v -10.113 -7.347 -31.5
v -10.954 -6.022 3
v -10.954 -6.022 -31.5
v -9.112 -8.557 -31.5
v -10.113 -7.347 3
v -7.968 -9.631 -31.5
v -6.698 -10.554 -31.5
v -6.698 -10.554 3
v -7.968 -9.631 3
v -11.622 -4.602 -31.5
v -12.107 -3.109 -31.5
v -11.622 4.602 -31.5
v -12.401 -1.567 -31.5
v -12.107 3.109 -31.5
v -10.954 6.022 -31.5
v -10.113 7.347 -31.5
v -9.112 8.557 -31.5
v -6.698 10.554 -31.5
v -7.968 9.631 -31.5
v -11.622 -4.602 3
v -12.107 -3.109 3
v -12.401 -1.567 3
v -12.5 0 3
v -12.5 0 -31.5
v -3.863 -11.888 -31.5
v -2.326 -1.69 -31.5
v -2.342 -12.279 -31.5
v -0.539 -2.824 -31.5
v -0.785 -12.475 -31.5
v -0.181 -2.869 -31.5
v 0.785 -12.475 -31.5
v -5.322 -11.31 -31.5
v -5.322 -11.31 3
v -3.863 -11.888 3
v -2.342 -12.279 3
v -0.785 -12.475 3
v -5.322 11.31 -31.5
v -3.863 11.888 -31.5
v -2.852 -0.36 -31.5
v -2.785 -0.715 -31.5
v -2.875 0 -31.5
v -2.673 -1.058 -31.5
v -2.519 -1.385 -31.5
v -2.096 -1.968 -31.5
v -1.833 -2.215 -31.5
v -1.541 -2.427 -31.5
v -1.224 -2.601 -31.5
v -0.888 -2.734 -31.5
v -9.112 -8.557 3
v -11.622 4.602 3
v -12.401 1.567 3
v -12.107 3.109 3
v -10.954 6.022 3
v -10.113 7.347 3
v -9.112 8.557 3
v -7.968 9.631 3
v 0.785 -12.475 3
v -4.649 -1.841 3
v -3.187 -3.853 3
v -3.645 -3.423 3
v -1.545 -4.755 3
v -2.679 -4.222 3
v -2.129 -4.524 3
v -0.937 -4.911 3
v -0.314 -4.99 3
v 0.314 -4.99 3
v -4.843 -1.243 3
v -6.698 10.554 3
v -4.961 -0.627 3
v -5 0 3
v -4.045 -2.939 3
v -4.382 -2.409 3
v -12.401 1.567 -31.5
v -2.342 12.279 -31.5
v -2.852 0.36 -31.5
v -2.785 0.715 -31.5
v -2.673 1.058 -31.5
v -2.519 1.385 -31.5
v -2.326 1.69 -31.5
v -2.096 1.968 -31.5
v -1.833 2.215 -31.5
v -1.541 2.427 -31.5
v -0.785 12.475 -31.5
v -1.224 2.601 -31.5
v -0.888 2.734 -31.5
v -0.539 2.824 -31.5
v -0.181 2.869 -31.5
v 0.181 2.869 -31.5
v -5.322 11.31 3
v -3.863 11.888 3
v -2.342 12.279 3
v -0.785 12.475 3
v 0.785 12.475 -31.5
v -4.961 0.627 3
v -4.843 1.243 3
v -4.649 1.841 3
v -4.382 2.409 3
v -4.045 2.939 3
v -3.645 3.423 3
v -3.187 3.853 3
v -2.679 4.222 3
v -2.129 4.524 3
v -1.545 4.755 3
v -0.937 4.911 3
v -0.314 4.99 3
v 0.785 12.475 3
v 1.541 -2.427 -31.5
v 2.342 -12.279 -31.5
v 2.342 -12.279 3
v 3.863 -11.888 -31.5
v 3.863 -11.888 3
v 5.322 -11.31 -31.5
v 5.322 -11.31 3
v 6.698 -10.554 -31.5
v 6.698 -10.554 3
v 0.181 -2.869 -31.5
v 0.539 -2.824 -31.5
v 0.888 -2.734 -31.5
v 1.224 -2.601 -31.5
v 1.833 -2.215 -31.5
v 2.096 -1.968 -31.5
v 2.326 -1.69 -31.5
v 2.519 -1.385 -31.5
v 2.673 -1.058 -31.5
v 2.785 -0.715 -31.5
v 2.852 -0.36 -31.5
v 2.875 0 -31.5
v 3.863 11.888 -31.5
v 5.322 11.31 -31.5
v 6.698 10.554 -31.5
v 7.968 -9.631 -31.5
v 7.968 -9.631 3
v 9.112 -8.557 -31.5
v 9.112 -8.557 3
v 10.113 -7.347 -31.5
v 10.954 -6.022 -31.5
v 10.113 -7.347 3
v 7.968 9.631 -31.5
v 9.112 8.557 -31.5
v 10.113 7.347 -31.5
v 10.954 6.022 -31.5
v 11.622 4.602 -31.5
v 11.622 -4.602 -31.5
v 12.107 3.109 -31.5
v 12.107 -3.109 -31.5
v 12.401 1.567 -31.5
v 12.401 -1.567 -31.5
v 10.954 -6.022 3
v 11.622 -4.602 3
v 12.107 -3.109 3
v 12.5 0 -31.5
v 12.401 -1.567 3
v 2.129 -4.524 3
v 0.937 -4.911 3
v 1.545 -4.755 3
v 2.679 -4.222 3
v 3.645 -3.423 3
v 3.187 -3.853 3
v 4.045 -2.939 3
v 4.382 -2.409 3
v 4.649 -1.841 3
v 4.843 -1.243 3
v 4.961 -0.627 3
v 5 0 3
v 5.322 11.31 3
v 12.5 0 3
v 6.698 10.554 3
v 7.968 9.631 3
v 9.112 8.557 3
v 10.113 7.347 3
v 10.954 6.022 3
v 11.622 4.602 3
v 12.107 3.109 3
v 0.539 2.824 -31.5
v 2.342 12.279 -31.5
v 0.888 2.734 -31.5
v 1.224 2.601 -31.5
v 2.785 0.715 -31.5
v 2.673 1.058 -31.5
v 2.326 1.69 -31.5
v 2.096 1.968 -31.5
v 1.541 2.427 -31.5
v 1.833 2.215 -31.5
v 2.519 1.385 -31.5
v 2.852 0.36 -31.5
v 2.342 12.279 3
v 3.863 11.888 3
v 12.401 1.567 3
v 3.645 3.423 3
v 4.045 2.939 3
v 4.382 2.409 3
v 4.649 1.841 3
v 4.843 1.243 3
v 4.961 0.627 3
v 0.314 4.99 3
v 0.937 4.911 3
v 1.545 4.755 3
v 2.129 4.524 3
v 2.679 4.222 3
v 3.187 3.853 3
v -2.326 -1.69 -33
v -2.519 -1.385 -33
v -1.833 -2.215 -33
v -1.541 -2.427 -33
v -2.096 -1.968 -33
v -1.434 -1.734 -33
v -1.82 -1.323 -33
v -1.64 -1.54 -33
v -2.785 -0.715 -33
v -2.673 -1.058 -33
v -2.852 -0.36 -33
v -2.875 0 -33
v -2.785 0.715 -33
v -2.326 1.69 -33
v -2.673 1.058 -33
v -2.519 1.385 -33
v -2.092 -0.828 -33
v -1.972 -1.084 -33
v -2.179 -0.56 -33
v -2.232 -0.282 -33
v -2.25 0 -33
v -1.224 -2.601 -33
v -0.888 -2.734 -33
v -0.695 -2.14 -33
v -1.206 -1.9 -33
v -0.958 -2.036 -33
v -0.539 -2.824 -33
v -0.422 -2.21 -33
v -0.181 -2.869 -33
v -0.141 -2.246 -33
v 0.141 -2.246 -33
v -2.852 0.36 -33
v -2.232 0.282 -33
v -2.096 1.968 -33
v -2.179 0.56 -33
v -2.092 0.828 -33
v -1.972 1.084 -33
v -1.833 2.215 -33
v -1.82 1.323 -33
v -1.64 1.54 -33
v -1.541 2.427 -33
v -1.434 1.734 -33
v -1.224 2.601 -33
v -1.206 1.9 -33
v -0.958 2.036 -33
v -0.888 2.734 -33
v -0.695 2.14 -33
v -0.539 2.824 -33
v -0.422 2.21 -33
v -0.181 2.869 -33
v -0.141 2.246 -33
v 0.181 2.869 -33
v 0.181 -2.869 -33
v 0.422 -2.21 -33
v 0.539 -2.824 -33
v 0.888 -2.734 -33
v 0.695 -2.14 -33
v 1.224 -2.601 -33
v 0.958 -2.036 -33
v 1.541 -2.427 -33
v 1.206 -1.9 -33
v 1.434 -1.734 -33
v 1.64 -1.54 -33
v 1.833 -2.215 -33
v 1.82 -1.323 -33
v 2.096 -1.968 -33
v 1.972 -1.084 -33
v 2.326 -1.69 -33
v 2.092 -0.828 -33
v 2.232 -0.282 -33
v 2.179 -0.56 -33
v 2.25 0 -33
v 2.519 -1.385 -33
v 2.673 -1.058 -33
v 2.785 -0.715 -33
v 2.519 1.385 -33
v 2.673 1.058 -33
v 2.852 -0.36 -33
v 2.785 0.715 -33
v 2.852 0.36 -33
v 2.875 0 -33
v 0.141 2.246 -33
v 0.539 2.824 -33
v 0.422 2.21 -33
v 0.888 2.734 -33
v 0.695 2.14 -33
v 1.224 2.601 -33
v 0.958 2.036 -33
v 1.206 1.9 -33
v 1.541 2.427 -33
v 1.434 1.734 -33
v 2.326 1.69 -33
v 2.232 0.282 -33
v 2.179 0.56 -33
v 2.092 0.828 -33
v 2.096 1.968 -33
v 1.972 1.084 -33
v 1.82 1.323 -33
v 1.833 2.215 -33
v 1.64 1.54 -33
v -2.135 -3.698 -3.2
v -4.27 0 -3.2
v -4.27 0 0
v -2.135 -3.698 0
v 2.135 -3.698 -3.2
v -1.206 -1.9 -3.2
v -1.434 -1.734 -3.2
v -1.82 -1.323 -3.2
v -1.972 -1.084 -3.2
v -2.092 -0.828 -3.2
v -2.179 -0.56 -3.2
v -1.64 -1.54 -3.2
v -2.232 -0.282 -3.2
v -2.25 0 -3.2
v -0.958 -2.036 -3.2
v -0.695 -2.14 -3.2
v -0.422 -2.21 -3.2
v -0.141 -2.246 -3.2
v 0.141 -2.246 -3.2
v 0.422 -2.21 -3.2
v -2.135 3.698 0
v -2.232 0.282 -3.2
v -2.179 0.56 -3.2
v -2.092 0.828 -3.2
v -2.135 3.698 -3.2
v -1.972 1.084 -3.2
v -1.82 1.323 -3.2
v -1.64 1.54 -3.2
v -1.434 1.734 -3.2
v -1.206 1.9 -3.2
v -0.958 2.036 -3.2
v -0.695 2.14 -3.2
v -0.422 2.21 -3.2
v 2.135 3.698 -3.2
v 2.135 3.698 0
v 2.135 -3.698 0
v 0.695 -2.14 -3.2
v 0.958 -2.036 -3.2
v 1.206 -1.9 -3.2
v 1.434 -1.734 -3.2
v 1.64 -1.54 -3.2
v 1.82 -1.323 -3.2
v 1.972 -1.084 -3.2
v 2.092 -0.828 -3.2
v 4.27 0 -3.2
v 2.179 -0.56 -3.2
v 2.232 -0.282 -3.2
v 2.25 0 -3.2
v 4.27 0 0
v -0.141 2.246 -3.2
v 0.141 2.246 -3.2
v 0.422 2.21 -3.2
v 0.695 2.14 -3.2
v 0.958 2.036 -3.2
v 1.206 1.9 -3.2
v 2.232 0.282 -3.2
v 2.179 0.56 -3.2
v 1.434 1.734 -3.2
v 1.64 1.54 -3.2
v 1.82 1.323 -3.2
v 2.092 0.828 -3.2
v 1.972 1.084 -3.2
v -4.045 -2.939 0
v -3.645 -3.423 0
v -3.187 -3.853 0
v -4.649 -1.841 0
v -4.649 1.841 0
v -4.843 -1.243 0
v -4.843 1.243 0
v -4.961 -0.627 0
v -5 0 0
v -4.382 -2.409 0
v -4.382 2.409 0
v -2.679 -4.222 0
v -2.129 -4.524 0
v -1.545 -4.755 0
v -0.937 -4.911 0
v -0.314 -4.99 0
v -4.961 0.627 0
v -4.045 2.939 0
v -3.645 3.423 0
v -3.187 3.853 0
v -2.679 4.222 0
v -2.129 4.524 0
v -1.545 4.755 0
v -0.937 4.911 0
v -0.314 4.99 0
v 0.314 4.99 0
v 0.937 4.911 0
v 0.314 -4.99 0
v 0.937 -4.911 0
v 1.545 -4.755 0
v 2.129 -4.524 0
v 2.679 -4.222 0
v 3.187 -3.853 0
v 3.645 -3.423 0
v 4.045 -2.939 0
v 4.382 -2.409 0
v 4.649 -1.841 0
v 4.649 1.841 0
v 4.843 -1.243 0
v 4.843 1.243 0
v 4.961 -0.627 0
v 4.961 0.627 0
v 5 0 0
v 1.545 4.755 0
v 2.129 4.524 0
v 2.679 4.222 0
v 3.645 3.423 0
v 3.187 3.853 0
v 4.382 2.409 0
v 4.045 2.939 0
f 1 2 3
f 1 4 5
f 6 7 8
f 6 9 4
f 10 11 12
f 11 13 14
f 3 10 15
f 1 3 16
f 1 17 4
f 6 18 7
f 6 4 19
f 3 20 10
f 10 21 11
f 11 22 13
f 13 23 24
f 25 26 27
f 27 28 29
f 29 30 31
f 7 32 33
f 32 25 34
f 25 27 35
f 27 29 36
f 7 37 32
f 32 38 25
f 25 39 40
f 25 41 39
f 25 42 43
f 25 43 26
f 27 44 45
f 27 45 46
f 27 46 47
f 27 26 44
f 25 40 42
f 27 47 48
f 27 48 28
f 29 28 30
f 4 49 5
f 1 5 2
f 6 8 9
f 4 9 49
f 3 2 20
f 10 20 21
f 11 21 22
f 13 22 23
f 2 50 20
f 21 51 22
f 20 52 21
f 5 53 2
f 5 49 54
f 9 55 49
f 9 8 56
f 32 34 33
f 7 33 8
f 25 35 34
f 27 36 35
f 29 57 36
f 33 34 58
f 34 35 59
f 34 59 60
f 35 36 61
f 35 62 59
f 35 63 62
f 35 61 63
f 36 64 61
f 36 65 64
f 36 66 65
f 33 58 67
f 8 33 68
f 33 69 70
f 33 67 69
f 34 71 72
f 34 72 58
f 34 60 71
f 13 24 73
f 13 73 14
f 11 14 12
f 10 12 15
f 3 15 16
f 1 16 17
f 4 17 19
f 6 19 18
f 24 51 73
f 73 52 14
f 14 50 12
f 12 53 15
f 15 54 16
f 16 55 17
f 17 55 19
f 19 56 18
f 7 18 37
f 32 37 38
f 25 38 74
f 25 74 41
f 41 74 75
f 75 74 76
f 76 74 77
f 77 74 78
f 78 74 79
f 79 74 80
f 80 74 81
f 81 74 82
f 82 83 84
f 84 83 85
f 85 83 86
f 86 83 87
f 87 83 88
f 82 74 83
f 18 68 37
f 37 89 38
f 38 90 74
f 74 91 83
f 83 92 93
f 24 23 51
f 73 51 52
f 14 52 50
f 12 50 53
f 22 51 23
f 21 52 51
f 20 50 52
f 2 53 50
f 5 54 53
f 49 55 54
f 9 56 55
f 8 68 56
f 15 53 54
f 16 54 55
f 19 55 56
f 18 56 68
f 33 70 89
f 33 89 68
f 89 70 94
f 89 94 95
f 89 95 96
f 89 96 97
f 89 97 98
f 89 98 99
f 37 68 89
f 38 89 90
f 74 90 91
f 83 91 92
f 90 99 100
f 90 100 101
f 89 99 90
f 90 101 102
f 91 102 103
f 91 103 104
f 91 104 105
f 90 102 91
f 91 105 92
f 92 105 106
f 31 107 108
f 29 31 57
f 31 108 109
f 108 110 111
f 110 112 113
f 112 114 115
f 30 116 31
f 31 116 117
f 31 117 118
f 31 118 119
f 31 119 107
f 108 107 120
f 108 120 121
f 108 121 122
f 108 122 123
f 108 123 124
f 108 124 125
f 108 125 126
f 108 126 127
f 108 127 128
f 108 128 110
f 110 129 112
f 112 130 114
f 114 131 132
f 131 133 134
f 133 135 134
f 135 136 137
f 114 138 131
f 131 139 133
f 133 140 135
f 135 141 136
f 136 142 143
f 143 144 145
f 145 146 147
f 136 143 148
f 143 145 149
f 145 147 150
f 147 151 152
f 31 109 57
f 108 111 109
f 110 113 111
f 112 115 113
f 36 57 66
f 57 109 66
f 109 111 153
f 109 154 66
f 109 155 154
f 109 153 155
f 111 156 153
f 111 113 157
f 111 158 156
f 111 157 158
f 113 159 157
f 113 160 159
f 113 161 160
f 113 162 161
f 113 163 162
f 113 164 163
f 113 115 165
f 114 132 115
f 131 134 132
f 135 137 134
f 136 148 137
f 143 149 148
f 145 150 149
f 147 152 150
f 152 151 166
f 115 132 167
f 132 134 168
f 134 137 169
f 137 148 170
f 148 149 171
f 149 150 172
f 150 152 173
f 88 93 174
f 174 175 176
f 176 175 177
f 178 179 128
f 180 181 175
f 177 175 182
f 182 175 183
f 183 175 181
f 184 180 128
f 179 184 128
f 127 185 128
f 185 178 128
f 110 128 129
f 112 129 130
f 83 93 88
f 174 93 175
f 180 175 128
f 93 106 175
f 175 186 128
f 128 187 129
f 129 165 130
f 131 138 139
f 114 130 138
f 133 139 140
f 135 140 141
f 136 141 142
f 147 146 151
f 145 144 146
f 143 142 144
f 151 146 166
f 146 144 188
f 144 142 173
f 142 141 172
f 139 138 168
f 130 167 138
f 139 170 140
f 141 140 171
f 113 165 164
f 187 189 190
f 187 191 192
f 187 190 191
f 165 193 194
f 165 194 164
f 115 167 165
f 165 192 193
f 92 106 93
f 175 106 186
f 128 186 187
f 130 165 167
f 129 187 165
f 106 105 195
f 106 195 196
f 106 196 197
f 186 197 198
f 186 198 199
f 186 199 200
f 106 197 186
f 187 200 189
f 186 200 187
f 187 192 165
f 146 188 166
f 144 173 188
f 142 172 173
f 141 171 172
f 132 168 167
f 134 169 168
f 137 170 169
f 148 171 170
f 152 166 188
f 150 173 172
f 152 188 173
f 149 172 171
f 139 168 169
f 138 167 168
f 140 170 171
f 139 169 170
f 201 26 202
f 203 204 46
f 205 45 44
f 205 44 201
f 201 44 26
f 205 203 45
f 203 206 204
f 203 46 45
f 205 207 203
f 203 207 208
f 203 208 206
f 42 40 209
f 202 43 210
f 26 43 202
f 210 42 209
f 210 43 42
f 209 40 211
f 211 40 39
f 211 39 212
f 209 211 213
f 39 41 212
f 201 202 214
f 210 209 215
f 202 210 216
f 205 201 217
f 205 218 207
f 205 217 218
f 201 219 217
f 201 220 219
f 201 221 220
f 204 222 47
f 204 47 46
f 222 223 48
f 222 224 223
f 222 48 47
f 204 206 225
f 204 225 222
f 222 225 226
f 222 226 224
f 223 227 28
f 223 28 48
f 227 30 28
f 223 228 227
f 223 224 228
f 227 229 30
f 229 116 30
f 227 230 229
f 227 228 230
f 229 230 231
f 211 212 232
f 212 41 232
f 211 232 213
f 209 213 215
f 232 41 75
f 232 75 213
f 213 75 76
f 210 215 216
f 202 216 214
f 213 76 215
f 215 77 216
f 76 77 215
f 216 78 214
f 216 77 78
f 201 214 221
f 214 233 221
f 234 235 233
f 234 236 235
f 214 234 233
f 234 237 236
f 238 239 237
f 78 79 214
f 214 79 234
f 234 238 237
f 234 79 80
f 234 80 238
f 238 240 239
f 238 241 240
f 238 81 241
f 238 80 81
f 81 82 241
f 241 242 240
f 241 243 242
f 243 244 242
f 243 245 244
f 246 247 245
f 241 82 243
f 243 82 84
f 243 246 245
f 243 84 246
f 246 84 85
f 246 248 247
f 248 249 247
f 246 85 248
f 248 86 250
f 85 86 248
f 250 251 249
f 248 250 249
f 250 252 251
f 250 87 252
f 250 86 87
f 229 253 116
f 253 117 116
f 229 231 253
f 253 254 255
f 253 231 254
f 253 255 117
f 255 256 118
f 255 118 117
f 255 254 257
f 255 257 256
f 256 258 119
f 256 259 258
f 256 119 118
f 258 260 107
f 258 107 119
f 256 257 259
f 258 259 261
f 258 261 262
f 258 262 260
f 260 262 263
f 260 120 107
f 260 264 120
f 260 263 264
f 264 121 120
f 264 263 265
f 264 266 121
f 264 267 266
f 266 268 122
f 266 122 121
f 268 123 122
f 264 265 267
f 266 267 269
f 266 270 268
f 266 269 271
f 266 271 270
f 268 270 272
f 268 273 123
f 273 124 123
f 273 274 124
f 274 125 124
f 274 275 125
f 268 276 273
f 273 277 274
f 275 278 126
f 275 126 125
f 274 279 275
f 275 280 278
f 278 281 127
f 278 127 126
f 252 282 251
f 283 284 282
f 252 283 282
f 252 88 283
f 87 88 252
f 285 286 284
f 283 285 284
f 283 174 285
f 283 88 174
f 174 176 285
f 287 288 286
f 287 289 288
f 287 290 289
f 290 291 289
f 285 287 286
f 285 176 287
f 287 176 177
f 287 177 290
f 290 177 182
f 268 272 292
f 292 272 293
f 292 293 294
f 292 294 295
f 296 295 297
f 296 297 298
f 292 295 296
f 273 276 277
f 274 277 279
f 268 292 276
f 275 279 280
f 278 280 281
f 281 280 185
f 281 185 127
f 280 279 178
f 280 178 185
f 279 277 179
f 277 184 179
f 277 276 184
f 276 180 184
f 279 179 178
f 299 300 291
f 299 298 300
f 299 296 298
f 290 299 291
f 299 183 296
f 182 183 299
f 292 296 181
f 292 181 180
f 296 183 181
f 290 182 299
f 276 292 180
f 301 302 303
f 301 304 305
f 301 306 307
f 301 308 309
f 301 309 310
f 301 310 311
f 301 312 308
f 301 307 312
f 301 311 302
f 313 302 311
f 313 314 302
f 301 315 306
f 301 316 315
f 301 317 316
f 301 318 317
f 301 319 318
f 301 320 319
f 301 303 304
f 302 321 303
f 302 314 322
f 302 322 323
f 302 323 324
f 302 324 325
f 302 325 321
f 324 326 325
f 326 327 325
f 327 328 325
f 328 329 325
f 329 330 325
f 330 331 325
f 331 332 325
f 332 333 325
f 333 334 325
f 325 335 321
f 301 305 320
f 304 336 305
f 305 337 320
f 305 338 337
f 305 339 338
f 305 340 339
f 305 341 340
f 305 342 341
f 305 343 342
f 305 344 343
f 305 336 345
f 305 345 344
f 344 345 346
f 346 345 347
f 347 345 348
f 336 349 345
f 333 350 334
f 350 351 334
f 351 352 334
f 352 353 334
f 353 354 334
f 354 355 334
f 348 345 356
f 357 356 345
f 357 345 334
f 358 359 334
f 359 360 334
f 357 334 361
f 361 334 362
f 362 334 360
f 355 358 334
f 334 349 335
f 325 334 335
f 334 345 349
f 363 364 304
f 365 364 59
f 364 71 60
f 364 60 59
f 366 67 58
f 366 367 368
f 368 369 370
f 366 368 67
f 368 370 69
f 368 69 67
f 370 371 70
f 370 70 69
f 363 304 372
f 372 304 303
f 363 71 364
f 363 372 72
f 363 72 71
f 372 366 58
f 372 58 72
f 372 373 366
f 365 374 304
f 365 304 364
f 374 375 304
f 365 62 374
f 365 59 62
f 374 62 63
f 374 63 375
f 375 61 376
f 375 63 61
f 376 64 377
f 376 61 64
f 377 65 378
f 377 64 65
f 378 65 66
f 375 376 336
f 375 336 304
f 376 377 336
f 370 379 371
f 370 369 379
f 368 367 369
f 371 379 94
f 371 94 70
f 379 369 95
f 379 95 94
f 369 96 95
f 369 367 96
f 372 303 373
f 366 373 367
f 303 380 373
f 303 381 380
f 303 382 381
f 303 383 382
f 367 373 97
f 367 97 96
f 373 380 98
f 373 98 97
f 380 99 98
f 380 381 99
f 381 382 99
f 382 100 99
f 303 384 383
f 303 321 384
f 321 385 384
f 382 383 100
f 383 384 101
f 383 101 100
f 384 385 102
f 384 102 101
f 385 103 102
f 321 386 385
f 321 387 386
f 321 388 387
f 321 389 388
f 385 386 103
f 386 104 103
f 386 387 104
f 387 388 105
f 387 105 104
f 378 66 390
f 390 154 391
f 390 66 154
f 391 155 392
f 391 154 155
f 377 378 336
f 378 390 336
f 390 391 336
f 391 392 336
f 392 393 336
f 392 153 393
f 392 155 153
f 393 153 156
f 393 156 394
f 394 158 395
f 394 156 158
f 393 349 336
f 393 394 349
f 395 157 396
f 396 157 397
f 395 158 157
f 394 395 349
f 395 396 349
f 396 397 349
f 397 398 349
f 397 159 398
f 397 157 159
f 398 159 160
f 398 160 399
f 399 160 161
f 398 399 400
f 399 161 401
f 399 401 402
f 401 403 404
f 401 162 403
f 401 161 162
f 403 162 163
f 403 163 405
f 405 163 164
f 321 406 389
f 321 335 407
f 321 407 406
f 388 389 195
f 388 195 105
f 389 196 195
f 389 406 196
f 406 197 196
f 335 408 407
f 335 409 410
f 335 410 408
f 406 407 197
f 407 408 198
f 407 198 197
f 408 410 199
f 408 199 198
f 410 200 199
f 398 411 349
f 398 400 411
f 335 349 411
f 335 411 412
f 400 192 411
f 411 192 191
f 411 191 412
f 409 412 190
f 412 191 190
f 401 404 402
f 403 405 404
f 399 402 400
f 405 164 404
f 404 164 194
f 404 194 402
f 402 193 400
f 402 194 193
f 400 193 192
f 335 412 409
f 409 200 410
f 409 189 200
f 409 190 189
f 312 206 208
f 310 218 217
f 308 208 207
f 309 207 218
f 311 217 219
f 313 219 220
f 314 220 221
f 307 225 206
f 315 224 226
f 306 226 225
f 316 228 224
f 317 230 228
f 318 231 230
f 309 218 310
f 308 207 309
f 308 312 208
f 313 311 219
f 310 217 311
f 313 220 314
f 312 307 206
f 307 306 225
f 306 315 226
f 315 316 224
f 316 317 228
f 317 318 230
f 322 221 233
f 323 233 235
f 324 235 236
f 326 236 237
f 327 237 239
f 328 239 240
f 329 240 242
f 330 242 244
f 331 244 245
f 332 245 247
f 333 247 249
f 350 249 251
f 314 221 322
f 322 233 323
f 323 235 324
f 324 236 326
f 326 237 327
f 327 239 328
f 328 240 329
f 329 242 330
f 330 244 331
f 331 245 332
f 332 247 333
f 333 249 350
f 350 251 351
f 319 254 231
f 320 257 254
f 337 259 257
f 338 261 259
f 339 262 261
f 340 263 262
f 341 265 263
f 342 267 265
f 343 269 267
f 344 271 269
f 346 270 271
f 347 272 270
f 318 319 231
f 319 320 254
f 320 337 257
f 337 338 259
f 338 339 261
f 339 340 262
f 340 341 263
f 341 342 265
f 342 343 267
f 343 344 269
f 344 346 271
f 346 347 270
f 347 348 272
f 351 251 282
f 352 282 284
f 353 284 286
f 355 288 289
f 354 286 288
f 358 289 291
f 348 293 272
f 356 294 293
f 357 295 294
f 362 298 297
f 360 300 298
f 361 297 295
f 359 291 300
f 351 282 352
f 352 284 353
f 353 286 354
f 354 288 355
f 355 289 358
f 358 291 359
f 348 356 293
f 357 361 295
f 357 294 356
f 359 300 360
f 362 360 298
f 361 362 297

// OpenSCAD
$fn = 50;

difference() {
	union() {
		translate(v = [0, 0, -31.5]) {
			cylinder(h = 34.5, r = 12.5);
		}
		#translate(v = [0, 0, -33.0]) {
			cylinder(h = 33, r = 2.875);
		}
	}
	union() {
		translate(v = [0, 0, 0]) {
			rotate(a = [0, 0, 0]) {
				difference() {
					union() {
						translate(v = [0, 0, -3.2]) {
							linear_extrude(height = 3.2) {
								polygon(points = [[4.2698, 0.0], [2.1349000000000005, 3.697755269078796], [-2.134899999999999, 3.6977552690787965], [-4.2698, 5.228996902999369e-16], [-2.134900000000002, -3.6977552690787956], [2.1348999999999974, -3.697755269078798]]);
							}
						}
					}
					union();
				}
			}
		}
		#cylinder(h = 3, r = 5.0);
		#translate(v = [0, 0, -100.0]) {
			cylinder(h = 200, r = 2.25);
		}
	}
}
